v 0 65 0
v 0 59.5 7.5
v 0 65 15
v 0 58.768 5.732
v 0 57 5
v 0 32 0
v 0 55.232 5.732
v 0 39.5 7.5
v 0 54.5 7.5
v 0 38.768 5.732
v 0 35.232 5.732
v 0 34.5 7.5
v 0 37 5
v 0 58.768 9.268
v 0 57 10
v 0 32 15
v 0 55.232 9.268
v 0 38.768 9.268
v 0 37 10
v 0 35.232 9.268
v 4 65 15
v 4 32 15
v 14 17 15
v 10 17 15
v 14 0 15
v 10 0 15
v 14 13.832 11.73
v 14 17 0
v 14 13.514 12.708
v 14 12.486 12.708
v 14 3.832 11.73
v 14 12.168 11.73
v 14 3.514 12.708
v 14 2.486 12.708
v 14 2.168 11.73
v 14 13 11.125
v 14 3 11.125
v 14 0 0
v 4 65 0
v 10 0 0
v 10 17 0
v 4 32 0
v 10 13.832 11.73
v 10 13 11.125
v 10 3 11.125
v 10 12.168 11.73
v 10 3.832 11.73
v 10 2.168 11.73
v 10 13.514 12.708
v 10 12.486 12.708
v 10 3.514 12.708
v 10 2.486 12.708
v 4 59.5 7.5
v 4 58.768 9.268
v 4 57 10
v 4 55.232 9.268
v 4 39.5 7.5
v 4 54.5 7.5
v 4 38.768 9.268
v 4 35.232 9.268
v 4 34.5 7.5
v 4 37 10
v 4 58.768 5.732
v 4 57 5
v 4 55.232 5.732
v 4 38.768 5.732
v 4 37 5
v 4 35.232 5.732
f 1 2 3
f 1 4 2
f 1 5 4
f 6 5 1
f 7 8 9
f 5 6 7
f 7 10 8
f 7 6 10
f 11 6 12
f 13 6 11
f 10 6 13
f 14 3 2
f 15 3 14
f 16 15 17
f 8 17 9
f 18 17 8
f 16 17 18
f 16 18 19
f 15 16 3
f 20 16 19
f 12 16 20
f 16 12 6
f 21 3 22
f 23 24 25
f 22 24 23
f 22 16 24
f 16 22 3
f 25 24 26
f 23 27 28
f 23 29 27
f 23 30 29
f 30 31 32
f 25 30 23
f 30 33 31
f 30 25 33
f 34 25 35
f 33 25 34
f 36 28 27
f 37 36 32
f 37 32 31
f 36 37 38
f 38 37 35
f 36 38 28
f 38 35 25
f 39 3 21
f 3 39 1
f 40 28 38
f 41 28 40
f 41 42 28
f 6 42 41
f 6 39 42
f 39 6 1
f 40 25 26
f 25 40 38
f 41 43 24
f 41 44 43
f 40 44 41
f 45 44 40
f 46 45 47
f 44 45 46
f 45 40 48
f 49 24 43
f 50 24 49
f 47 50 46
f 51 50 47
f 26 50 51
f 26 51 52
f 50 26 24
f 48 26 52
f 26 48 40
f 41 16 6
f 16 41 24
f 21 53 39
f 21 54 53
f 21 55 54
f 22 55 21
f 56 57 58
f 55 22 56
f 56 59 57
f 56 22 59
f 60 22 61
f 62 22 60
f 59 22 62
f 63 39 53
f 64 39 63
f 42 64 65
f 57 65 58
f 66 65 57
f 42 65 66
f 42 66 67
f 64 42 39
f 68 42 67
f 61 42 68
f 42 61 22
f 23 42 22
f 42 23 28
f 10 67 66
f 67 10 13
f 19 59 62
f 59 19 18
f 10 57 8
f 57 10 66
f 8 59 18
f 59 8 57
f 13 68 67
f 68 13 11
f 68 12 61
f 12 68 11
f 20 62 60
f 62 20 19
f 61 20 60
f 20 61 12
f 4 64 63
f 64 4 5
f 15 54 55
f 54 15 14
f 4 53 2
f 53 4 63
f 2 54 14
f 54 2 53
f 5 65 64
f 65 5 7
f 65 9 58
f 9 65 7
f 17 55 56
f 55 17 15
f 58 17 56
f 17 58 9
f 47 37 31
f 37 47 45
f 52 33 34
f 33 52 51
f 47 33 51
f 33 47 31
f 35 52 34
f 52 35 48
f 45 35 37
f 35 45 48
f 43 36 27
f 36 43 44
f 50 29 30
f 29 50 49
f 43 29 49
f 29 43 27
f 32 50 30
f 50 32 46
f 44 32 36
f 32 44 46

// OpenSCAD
/**
 *
 * Created by Diego Viejo
 * 08/Septembre/2019
 * 
 * ZEndStopHolder
 * 
 */

Width = 14;
Height = 15;

Length1 = 37;
Length = 65;

difference()
{
    cube([Width, Length, Height]);
    
    hull()
    {
        translate([-1, -1, -1]) cube([Width-4+1, Length1-20+1, Height+2]);
        translate([-30,Length1-15, -1]) cube([30, 10, Height+2]);
    }
    
    hull()
    {
        translate([4, Length1-5, -1]) cube([Width, Length, Height+2]);
        translate([Width, Length1-20, -1]) cube([20, 20, Height+2]);
    }
    
    //T-Slot M5 holes
    translate([-1, Length1, Height/2]) rotate([0, 90, 0]) cylinder(d=5, h=20);
    translate([-1, Length1+20, Height/2]) rotate([0, 90, 0]) cylinder(d=5, h=20);
    
    //Mechanical endstop
    translate([-1, 3, Height-3]) rotate([0, 90, 0]) cylinder(d=1.75, h=20);
    translate([-1, 3+10, Height-3]) rotate([0, 90, 0]) cylinder(d=1.75, h=20);
    
}
